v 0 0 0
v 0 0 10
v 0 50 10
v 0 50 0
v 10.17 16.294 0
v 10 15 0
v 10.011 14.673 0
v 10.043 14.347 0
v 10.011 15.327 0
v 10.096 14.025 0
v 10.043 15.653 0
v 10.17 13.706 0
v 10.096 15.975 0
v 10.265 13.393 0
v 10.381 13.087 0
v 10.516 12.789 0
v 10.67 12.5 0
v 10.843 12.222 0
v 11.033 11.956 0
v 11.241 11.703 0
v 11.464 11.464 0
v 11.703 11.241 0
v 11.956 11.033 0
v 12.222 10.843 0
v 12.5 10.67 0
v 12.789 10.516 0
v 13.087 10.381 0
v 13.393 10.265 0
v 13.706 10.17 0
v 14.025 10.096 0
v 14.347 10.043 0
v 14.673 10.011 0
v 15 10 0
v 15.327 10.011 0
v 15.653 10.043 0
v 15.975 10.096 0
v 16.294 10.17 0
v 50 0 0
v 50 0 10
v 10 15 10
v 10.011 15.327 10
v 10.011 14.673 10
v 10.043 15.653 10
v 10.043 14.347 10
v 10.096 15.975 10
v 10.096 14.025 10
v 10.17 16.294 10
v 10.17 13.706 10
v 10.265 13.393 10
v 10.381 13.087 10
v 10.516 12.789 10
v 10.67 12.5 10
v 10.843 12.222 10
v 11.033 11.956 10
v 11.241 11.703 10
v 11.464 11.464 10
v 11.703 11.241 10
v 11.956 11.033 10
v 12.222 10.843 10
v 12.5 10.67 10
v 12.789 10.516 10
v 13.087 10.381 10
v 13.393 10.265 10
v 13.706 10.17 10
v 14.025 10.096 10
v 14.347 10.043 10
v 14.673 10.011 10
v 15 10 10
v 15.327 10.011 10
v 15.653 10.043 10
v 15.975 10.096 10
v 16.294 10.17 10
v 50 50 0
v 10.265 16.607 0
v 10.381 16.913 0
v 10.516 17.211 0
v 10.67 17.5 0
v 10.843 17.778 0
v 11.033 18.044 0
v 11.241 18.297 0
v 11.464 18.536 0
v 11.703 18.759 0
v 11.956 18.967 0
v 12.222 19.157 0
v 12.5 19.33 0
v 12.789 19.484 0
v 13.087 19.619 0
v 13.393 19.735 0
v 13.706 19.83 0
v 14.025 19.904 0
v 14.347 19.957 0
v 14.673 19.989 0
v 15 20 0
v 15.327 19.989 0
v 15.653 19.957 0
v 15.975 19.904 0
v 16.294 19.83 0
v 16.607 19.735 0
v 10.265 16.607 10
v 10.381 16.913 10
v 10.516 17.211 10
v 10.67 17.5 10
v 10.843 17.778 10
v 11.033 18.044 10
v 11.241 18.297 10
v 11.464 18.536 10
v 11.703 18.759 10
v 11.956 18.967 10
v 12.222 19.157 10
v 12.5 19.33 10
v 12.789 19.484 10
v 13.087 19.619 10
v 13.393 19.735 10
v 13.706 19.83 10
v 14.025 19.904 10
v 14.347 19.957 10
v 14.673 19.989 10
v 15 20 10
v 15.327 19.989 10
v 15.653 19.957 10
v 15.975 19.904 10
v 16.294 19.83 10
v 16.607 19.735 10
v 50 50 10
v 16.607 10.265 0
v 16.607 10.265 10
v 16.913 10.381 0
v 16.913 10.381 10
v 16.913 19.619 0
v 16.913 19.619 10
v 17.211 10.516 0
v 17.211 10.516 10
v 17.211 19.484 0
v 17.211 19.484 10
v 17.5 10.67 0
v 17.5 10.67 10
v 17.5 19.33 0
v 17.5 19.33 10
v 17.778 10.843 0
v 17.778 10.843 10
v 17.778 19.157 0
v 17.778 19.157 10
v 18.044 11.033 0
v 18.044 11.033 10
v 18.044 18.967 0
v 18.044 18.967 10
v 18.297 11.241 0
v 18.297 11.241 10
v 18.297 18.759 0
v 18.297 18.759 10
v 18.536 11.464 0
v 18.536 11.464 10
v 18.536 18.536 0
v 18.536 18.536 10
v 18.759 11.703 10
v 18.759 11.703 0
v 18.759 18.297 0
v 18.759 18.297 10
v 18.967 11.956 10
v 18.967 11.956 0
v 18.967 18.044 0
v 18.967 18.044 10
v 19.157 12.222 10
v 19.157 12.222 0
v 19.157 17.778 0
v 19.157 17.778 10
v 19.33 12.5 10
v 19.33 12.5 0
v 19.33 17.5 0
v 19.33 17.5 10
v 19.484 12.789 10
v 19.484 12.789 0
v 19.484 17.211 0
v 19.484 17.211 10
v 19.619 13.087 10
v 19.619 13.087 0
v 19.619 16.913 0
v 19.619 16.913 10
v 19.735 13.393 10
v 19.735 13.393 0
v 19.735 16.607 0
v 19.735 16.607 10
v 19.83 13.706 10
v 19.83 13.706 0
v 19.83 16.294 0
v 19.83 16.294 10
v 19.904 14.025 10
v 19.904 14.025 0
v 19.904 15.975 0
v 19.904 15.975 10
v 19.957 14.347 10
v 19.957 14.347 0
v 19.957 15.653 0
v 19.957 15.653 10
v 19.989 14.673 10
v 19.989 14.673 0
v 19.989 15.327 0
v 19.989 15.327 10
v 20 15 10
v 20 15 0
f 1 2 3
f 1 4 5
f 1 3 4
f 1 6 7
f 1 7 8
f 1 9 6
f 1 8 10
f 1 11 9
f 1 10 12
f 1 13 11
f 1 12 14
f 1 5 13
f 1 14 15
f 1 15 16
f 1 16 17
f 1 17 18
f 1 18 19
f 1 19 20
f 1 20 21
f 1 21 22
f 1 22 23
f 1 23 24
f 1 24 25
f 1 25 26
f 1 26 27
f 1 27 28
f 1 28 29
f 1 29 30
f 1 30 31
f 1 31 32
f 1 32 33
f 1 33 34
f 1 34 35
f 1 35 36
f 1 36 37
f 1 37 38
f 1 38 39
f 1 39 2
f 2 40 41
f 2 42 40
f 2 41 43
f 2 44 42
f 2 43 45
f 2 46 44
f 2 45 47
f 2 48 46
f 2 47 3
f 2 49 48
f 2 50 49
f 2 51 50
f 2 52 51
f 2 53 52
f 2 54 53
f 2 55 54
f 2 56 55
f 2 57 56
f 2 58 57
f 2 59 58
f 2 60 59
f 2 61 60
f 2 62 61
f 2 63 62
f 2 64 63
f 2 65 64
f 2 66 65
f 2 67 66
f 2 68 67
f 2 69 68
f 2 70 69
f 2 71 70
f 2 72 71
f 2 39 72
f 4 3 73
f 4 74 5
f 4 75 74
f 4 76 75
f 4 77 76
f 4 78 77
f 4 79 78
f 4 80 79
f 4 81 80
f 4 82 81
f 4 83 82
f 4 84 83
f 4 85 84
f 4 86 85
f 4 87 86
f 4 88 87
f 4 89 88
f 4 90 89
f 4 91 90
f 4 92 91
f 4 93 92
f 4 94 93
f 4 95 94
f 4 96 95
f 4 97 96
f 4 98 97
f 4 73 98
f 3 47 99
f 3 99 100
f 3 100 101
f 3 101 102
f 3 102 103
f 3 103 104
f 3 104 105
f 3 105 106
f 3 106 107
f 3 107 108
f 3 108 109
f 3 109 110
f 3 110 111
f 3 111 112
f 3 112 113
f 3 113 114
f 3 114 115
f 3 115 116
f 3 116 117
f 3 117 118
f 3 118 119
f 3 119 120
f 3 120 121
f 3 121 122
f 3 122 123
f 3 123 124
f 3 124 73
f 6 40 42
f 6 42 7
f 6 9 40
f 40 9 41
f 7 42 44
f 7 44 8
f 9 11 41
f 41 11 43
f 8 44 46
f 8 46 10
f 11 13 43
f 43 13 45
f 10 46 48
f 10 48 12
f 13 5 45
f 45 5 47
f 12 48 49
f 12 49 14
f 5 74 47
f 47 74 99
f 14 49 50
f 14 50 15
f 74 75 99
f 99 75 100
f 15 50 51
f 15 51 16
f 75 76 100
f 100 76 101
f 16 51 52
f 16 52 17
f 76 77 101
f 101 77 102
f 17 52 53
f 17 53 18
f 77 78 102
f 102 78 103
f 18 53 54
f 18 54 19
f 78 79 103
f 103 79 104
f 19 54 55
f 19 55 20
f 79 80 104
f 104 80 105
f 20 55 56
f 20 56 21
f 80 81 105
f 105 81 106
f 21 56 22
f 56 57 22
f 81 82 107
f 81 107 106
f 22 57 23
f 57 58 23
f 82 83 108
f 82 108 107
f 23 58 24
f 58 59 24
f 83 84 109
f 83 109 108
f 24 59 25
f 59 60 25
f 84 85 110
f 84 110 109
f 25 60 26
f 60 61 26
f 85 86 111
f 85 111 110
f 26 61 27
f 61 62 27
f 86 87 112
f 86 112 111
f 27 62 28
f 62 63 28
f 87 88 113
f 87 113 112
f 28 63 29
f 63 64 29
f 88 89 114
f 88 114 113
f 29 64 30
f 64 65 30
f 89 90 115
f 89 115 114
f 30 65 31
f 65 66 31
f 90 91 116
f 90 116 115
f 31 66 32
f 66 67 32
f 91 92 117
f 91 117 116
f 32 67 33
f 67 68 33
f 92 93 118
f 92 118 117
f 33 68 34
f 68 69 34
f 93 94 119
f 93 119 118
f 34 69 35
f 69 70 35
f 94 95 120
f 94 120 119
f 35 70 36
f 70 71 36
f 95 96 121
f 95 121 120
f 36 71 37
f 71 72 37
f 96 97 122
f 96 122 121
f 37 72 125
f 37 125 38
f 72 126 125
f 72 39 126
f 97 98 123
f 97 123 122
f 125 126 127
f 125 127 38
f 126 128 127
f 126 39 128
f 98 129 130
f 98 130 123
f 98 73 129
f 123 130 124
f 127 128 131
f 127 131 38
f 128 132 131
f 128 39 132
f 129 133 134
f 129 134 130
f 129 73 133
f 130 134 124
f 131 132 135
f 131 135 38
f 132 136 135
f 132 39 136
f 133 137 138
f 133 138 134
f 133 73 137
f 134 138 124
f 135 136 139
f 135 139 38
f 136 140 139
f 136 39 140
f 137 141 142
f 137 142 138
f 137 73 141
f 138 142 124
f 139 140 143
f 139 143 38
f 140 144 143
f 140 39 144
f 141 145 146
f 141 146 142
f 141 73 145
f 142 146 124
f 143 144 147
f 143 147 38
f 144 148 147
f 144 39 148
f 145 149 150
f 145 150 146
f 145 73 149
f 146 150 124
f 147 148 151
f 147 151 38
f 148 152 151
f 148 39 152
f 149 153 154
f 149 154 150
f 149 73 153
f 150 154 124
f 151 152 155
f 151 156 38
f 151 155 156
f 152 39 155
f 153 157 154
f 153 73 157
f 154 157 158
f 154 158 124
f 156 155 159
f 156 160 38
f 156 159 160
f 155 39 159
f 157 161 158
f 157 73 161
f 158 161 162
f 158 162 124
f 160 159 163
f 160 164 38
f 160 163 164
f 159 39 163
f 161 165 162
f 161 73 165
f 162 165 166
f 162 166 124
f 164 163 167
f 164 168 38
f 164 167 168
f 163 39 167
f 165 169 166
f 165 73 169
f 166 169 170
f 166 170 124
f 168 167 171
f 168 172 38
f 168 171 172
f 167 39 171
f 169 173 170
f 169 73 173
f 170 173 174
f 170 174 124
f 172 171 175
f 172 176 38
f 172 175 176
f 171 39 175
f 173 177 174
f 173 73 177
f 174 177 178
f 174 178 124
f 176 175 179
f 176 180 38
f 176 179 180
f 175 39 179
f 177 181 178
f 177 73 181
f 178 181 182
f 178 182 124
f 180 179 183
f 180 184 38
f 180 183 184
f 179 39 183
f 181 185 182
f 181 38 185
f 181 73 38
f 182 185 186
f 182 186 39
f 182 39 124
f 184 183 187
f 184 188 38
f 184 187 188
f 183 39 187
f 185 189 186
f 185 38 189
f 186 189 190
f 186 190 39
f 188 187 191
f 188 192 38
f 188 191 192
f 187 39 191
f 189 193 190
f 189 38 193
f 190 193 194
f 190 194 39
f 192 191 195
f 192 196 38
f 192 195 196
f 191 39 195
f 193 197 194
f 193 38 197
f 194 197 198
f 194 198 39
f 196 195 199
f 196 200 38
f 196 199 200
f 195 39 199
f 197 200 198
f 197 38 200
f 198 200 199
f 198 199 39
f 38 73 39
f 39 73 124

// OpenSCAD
// _dbgdia / body
// 3D AI Designer V1.1 Geometry Engine uretimi - tum olculer mm.

// ============ PARAMETERS ============
width = 50;
depth = 50;
height = 10;
$fn = 96;  // dairesel yuzey cozunurlugu (bbox dogrulugu icin)
hole_h1_dia = 10;
hole_h1_x = 15;
hole_h1_y = 15;

// ============ GEOMETRY + BOOLEAN OPERATIONS ============
difference() { cube([50, 50, 10]); translate([15, 15, -1]) cylinder(d = 10, h = 12); }

// ============ EXPORT ============
// Export harici arac ile yapilir (Export-Stl.ps1).
